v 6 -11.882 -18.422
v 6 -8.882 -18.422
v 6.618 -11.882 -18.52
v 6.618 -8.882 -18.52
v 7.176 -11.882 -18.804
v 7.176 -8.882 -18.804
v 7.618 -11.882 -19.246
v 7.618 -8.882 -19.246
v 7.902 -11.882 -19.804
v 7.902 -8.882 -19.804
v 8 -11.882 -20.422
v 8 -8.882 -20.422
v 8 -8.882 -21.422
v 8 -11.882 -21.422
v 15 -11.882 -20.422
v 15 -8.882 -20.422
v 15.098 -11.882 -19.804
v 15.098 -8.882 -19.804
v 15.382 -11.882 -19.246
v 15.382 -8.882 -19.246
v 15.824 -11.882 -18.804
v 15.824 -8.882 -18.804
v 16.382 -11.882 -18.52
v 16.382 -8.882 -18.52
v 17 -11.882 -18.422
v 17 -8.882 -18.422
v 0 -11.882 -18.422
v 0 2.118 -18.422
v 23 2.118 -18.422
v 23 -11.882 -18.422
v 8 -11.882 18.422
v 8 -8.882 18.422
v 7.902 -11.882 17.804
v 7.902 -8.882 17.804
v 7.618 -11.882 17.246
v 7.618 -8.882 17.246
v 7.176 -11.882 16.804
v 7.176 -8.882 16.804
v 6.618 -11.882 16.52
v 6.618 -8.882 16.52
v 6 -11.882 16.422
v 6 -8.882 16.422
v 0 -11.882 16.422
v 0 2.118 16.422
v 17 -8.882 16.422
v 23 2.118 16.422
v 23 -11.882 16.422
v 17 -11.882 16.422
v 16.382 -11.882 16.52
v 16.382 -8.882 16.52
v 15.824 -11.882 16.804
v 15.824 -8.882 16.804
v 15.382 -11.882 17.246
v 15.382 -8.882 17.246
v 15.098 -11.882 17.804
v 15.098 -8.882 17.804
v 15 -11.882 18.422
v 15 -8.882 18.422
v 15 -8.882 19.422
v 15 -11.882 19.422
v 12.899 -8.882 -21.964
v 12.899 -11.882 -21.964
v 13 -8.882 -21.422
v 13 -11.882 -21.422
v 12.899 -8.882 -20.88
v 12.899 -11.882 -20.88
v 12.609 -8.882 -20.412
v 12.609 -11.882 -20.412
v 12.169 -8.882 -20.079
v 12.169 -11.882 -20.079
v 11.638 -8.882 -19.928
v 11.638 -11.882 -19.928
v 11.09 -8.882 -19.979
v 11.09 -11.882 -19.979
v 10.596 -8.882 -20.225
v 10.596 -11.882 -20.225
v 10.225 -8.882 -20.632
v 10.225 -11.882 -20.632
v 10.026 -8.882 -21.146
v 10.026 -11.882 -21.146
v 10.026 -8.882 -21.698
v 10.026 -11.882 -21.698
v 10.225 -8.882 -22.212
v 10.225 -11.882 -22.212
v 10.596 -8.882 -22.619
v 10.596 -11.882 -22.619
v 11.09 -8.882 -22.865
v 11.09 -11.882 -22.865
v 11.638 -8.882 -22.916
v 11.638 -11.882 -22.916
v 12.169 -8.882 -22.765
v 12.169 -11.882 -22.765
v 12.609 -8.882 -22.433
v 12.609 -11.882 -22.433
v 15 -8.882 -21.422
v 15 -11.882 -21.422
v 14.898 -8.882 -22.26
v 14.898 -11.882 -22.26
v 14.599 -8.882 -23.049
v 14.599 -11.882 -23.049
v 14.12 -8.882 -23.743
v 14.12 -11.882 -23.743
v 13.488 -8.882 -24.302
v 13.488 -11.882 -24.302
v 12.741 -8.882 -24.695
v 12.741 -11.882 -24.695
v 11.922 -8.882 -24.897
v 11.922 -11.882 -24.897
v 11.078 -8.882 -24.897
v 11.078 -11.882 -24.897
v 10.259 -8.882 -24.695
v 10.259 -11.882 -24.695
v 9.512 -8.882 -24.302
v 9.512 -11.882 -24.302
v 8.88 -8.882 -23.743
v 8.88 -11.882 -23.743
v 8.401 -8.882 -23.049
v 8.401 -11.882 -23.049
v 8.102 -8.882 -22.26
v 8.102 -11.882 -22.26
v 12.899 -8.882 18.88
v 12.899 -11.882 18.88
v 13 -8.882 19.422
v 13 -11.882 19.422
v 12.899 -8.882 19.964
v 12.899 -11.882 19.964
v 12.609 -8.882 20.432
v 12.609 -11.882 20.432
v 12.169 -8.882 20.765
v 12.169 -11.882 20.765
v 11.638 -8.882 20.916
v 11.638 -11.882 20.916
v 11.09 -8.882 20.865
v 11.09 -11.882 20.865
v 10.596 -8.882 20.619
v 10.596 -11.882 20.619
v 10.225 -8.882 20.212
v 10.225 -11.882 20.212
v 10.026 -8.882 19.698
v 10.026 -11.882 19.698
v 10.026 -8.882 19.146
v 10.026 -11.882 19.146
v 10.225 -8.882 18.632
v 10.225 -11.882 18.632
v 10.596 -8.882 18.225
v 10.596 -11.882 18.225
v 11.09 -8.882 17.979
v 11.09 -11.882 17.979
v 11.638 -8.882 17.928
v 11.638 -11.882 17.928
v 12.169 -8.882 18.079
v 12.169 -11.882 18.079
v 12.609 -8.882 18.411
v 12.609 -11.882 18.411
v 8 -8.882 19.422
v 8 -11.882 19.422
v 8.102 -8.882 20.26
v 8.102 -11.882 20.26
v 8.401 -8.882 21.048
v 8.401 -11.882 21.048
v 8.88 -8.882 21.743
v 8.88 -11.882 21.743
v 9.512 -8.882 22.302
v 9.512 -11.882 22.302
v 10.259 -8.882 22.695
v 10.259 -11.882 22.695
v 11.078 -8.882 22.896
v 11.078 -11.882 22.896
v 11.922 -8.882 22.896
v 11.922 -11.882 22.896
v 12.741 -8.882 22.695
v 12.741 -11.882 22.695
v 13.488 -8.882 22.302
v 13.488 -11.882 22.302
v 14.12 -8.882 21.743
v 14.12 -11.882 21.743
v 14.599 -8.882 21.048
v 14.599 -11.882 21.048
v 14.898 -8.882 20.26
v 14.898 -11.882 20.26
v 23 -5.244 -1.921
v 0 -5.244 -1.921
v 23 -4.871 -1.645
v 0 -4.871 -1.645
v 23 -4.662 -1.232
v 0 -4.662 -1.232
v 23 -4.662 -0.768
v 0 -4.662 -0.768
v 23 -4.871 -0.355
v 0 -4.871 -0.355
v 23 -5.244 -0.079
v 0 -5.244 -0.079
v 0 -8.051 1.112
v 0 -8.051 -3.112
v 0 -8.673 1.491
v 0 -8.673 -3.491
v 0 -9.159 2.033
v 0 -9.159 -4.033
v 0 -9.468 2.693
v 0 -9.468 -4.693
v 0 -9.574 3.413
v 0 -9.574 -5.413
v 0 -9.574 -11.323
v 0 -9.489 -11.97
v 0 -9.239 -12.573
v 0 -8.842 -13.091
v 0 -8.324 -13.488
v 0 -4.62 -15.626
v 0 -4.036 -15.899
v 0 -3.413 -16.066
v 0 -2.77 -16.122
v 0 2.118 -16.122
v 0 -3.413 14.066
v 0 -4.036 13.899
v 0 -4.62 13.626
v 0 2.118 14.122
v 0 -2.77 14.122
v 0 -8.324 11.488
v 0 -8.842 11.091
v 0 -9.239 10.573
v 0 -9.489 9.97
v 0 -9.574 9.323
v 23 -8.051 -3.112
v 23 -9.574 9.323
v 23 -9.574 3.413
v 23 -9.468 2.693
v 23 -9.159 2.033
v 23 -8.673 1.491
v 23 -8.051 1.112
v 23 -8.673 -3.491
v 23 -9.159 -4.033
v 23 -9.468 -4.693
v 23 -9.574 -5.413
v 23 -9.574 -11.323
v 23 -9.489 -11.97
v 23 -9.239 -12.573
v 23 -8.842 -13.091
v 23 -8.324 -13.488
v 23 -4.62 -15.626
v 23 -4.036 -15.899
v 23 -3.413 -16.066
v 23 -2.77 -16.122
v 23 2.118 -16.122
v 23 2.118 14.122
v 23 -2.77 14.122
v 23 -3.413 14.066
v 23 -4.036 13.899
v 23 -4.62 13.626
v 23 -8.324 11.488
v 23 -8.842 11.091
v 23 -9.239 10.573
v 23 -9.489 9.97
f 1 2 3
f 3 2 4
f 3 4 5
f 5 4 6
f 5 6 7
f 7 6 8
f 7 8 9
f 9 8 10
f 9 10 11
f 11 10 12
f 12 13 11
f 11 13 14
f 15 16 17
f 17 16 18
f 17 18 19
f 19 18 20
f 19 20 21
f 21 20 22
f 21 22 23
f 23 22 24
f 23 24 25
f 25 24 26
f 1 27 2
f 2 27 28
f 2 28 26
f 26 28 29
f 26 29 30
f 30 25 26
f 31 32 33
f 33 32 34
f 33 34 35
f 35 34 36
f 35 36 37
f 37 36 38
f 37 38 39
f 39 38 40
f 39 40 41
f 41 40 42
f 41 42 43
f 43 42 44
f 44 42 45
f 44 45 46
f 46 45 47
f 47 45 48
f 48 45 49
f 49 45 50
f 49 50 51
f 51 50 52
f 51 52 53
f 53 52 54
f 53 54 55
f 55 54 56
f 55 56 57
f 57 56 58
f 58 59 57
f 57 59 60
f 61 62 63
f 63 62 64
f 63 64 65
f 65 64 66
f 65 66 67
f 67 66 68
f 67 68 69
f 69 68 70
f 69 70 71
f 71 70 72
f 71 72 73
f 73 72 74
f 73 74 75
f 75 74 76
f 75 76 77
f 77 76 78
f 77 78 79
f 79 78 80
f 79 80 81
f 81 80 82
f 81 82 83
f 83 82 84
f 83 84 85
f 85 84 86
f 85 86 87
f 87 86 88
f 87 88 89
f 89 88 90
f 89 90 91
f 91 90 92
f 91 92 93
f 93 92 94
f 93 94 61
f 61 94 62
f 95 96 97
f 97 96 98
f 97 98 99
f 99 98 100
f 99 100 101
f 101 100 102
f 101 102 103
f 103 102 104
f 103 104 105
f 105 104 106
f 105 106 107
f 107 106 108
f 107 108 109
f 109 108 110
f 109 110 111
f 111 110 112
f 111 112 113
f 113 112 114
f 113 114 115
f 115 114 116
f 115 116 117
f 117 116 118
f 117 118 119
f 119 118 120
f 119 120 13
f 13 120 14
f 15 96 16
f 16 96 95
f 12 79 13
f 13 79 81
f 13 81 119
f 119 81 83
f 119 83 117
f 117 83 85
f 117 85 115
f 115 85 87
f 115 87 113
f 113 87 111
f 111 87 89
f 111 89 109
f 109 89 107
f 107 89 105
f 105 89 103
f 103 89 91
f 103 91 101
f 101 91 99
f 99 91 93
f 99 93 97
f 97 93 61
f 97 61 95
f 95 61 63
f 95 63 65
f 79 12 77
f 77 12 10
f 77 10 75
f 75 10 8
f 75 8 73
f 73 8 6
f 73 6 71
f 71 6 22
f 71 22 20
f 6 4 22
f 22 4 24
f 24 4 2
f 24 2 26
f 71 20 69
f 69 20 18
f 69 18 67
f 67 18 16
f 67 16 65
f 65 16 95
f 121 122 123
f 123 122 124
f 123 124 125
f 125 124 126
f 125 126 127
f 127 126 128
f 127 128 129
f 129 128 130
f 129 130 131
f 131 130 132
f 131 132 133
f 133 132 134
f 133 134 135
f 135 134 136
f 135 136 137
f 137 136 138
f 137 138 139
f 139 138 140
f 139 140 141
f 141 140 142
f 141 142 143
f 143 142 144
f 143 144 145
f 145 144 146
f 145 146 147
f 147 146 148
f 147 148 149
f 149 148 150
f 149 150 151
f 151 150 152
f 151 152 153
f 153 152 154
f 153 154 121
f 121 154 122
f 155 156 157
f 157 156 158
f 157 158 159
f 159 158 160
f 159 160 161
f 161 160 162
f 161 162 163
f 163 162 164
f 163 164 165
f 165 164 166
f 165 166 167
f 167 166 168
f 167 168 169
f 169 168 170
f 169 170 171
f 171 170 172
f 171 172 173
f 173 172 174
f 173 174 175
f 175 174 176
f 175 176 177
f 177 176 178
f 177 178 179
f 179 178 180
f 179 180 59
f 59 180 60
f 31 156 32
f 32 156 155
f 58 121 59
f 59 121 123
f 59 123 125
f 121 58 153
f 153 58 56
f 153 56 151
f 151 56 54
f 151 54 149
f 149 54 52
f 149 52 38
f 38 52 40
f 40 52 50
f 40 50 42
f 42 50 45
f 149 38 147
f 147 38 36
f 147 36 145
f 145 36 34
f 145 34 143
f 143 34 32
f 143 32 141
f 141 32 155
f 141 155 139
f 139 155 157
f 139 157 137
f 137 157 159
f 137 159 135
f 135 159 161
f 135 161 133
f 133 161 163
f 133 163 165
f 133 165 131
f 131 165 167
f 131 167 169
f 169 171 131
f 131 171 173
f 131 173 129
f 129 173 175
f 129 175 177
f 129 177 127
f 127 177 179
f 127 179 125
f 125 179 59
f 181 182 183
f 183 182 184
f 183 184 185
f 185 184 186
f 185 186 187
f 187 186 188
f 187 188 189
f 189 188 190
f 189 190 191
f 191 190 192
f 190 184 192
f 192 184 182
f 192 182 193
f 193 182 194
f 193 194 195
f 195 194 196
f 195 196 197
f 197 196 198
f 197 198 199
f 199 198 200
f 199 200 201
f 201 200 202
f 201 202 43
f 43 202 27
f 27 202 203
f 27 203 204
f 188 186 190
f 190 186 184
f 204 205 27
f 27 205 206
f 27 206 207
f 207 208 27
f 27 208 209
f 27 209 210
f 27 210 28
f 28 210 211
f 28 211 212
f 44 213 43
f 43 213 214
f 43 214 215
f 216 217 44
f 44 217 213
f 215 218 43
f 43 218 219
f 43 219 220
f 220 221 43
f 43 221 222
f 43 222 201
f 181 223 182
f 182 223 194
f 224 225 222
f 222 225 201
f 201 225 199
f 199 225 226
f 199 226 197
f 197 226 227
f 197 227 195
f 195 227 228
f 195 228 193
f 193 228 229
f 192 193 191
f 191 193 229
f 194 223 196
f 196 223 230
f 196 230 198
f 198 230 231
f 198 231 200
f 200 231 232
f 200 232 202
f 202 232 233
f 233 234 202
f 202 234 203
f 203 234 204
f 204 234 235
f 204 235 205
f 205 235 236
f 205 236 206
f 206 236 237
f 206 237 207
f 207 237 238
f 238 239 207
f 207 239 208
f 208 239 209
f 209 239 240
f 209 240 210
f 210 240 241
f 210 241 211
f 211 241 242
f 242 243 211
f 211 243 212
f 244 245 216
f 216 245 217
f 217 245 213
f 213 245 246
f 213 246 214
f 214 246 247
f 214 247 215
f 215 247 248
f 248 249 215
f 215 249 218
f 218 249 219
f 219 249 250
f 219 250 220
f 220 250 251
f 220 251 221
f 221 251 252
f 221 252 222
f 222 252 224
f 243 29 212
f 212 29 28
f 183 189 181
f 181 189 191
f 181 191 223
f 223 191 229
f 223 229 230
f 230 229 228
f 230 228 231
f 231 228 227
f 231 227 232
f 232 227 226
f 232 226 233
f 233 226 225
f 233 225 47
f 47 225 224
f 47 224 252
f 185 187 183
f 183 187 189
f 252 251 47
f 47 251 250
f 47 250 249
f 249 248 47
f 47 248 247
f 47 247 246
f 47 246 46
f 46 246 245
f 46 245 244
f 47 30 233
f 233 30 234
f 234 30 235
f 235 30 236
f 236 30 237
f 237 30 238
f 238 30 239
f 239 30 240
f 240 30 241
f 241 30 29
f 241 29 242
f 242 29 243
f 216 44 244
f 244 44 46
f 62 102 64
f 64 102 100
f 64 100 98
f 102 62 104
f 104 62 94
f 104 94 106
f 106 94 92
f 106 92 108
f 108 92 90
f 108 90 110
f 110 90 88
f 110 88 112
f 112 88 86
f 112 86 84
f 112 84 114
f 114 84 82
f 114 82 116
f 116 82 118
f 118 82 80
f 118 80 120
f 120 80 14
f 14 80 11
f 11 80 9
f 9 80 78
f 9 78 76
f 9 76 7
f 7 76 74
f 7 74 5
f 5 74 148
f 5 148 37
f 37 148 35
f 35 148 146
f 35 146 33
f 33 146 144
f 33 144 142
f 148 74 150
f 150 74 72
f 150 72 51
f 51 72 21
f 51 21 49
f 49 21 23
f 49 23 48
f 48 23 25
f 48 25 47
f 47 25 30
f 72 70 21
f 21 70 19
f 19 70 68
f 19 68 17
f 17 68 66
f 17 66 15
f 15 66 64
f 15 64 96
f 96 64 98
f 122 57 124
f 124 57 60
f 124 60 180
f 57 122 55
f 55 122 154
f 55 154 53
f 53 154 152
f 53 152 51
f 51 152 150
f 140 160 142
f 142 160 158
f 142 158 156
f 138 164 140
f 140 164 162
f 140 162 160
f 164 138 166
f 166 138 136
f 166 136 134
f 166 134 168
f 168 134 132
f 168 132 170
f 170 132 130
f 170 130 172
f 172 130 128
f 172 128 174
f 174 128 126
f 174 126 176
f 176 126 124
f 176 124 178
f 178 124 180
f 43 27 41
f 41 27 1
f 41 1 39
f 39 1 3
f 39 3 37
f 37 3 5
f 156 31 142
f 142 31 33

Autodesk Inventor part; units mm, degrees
ref_plane "YZ Plane" through (0, 0, 0) normal (1, 0, 0) x (0, 1, 0)
ref_plane "XZ Plane" through (0, 0, 0) normal (0, 1, 0) x (-1, 0, 0)
ref_plane "XY Plane" through (0, 0, 0) normal (0, 0, 1) x (1, 0, 0)
sketch "Sketch1" plane through (0, 0, 0) normal (1, 0, 0) x (0, 1, 0)
  arc A0 (-7.974, 10.8816) -> (-8.874, 9.3228) centre (-7.074, 9.3228) ccw
  line L0 (-8.874, 9.3228) -> (-8.874, 3.4133)
  line L1 (-8.874, 9.3228) -> (-8.874, 3.4133)
  arc A1 (-1.981, -0.7039) -> (0, -1) centre (-0.4181, 2.9781) ccw
  line L2 (-7.7773, 1.7564) -> (-1.981, -0.7039)
  line L3 (2.1178, 13.4219) -> (-2.7701, 13.4219)
  line L4 (-1.981, -0.7039) -> (2.1178, 13.4219)
  line L5 (2.1178, 13.4219) -> (-2.7701, 13.4219)
  arc A2 (-2.7701, 13.4219) -> (-4.2701, 13.02) centre (-2.7701, 10.4219) ccw
  line L6 (-4.2701, 13.02) -> (-12.9304, 8.02)
  line L7 (-4.2701, 13.02) -> (-7.974, 10.8816)
  circle A3 centre (-7.074, 9.3228) radius 1.8
  circle A4 centre (-2.7701, 10.4219) radius 3
  arc A5 (-8.874, 3.4133) -> (-7.7773, 1.7564) centre (-7.074, 3.4133) ccw
  circle A6 centre (-7.074, 3.4133) radius 1.8
  line L8 (0, -1) -> (-3.8233, -1)
  arc A7 (-8.874, -11.3228) -> (-7.974, -12.8816) centre (-7.074, -11.3228) ccw
  line L9 (-8.874, -11.3228) -> (-8.874, -5.4133)
  line L10 (-8.874, -11.3228) -> (-8.874, -5.4133)
  line L11 (-7.7773, -3.7564) -> (-1.981, -1.2961)
  line L12 (2.1178, -15.4219) -> (-2.7701, -15.4219)
  line L13 (-1.981, -1.2961) -> (2.1178, -15.4219)
  line L14 (2.1178, -15.4219) -> (-2.7701, -15.4219)
  arc A8 (-4.2701, -15.02) -> (-2.7701, -15.4219) centre (-2.7701, -12.4219) ccw
  line L15 (-4.2701, -15.02) -> (-12.9304, -10.02)
  line L16 (-4.2701, -15.02) -> (-7.974, -12.8816)
  circle A9 centre (-7.074, -11.3228) radius 1.8
  circle A10 centre (-2.7701, -12.4219) radius 3
  arc A11 (-7.7773, -3.7564) -> (-8.874, -5.4133) centre (-7.074, -5.4133) ccw
  circle A12 centre (-7.074, -5.4133) radius 1.8
  line L17 (-1.981, -0.7039) -> (-1.981, -1.2961)
  line L18 (2.1178, 13.4219) -> (2.1178, 16.4219)
  line L19 (2.1178, 16.4219) -> (-11.8822, 16.4219)
  line L20 (-11.8822, 16.4219) -> (-11.8822, -18.4221)
  line L21 (-11.8822, -18.4221) -> (2.1178, -18.4221)
  line L22 (2.1178, -18.4221) -> (2.1178, -15.4219)
  point P0 (0, 0)
  point P1 (4.8736, 0.62)
  point P2 (-0.4181, -4.9781)
  point P3 (-4.2701, -15.02)
  point P4 (-7.974, 10.8816)
  dimension "d0" = 10
  dimension "d1" = 3
  dimension "d2" = 14
  dimension "d3" = 34.844
extrude "Extrusion1" add sketch "Sketch1" along normal blind 23 contours L6 L20 L19 L18 L3 A2 | A0 L0 A5 L2 L17 L11 A11 L9 A7 L15 L20 L6 | L15 A8 L12 L22 L21 L20
sketch "Sketch2" plane through (23, 0, 0) normal (1, 0, 0) x (0, 0, -1)
  line L0 (-13.4219, -2.7701) -> (-13.4219, 2.1178) projected
  line L1 (-13.4219, 2.1178) -> (-13.4219, -2.7701)
  line L2 (-13.4219, -2.7701) -> (-14.1219, -2.7701)
  line L3 (-14.1219, -2.7701) -> (-14.1219, 2.1178)
  line L4 (-14.1219, 2.1178) -> (-13.4219, 2.1178)
  line L5 (-10.8816, -7.974) -> (-13.02, -4.2701) projected
  line L6 (-13.02, -4.2701) -> (-10.8816, -7.974)
  line L7 (-10.8816, -7.974) -> (-11.4878, -8.324)
  line L8 (-11.4878, -8.324) -> (-13.6262, -4.6201)
  line L9 (-13.6262, -4.6201) -> (-13.02, -4.2701)
  arc A0 (-10.8816, -7.974) -> (-9.3228, -8.874) centre (-9.3228, -7.074) ccw projected
  arc A1 (-3.4133, -8.874) -> (-1.7564, -7.7773) centre (-3.4133, -7.074) ccw projected
  line L10 (-9.3228, -8.874) -> (-3.4133, -8.874)
  line L11 (-3.4133, -8.874) -> (-3.4133, -9.574)
  line L12 (-3.4133, -9.574) -> (-9.3228, -9.574)
  line L13 (-9.3228, -9.574) -> (-9.3228, -8.874)
  line L14 (0.7039, -1.981) -> (-1.7564, -7.7773) projected
  line L15 (-1.7564, -7.7773) -> (0.7039, -1.981)
  line L16 (0.7039, -1.981) -> (1.3483, -2.2546)
  line L17 (1.3483, -2.2546) -> (-1.1121, -8.0508)
  line L18 (-1.1121, -8.0508) -> (-1.7564, -7.7773)
  line L19 (1.2961, -1.981) -> (0.7039, -1.981) projected
  line L20 (1, -1.981) -> (1, -3.9334)
  arc A2 (-13.4219, -2.7701) -> (-13.02, -4.2701) centre (-10.4219, -2.7701) ccw projected
  circle A3 centre (-10.4219, -2.7701) radius 3.7
  circle A4 centre (-9.3228, -7.074) radius 2.5
  circle A5 centre (-3.4133, -7.074) radius 2.5
  line L21 (15.4219, -2.7701) -> (15.4219, 2.1178)
  line L22 (15.4219, 2.1178) -> (15.4219, -2.7701)
  line L23 (15.4219, -2.7701) -> (16.1219, -2.7701)
  line L24 (16.1219, -2.7701) -> (16.1219, 2.1178)
  line L25 (16.1219, 2.1178) -> (15.4219, 2.1178)
  line L26 (12.8816, -7.974) -> (15.02, -4.2701)
  line L27 (15.02, -4.2701) -> (12.8816, -7.974)
  line L28 (12.8816, -7.974) -> (13.4878, -8.324)
  line L29 (13.4878, -8.324) -> (15.6262, -4.6201)
  line L30 (15.6262, -4.6201) -> (15.02, -4.2701)
  arc A6 (11.3228, -8.874) -> (12.8816, -7.974) centre (11.3228, -7.074) ccw
  arc A7 (3.7564, -7.7773) -> (5.4133, -8.874) centre (5.4133, -7.074) ccw
  line L31 (11.3228, -8.874) -> (5.4133, -8.874)
  line L32 (5.4133, -8.874) -> (5.4133, -9.574)
  line L33 (5.4133, -9.574) -> (11.3228, -9.574)
  line L34 (11.3228, -9.574) -> (11.3228, -8.874)
  line L35 (1.2961, -1.981) -> (3.7564, -7.7773)
  line L36 (3.7564, -7.7773) -> (1.2961, -1.981)
  line L37 (0.6517, -2.2546) -> (3.1121, -8.0508)
  line L38 (3.1121, -8.0508) -> (3.7564, -7.7773)
  arc A8 (15.02, -4.2701) -> (15.4219, -2.7701) centre (12.4219, -2.7701) ccw
  circle A9 centre (12.4219, -2.7701) radius 3.7
  circle A10 centre (11.3228, -7.074) radius 2.5
  circle A11 centre (5.4133, -7.074) radius 2.5
  point P0 (0, 0)
  point P1 (13.7491, -6.4715)
  point P2 (13.6826, -6.2487)
  point P3 (13.9372, -6.1456)
  point P4 (-11.9372, -6.1456)
  point P5 (-11.6826, -6.2487)
  point P6 (-11.7491, -6.4715)
  point P7 (-13.6262, -4.6201)
  point P8 (-9.3228, -9.574)
  point P9 (-1.1121, -8.0508)
  point P10 (1, -3.0751)
  point P11 (3.1121, -8.0508)
  point P12 (11.3228, -9.574)
  point P13 (15.6262, -4.6201)
  point P14 (16.1219, -2.7701)
  point P15 (15.4219, -0.6045)
  point P16 (9.6476, -5.2182)
  point P17 (9.5878, -8.874)
  point P18 (7.1483, -8.874)
  point P19 (3.0785, -6.1803)
  point P20 (-1.0785, -6.1803)
  point P21 (-5.1483, -8.874)
  point P22 (-7.5878, -8.874)
  point P23 (-7.6476, -5.2182)
  point P24 (-13.4219, -0.6045)
  point P25 (-14.1219, -2.7701)
  dimension "d6" = 0.7
  dimension "d7" = 0.7
  dimension "d8" = 0.7
  dimension "d9" = 0.7
extrude "Extrusion2" cut sketch "Sketch2" against normal blind 23 contours L2 A3 L0 | A2 L9 A3 L2 | L0 A3 A4 L5 A2 | A3 L3 L4 L0 | L5 A3 L9 | A3 L5 A4 L8 | A4 L10 A0 L5 A3 | A3 A4 | A4 L5 L7 | L7 A0 L13 A4 | A4 L10 A5 L12 | L13 L10 A4 | A5 L10 L11 | L11 A1 L18 A5 | A5 L14 A1 L10 | A5 L14 L16 L20 L17 | L18 L14 A5 | L20 L16 L17 | L17 L16 L20 L19 L35 A11 L37 | L19 L20 L16 | A11 L35 L38 | L38 A7 L32 A11 | L35 A11 L31 A7 | A11 L31 A10 L33 | L32 L31 A11 | A10 L31 L34 | L34 A6 L28 A10 | L31 A10 A9 L26 A6 | A10 L26 A9 L29 | L28 L26 A10 | A9 L26 L30 | L30 A8 L23 A9 | A10 A9 | A9 L21 A8 L26 A10 | A9 L21 L25 L24 | L23 L21 A9
fillet "Fillet1" radius 1 1 edges at (11.5, -3.0751, -1)
sketch "Sketch3" plane through (0, -11.8822, -18.4221) normal (0, -1, 0) x (1, 0, 0)
  line L0 (0, 0) -> (23, 0) projected
  line L1 (11.5, 0) -> (11.5, -3)
  line L2 (0, 34.844) -> (23, 34.844) projected
  line L3 (11.5, 34.844) -> (11.5, 37.844)
  circle A0 centre (11.5, 37.844) radius 1.5
  circle A1 centre (11.5, -3) radius 1.5
  line L4 (11.5, 37.844) -> (11.5, -3) construction
  line L5 (8, 37.844) -> (8, -3)
  line L6 (15, -3) -> (15, 37.844)
  arc A2 (15, 37.844) -> (8, 37.844) centre (11.5, 37.844) ccw
  arc A3 (8, -3) -> (15, -3) centre (11.5, -3) ccw
  point P0 (0, 18.4221)
  point P1 (11.5, 17.422)
  point P2 (8, 0)
  point P3 (15, 0)
  point P4 (15, 34.844)
  point P5 (8, 34.844)
  dimension "d13" = 3
  dimension "d14" = 3
  dimension "d15" = 3
  dimension "d16" = 3
  dimension "d17" = 7
extrude "Extrusion3" add sketch "Sketch3" against normal blind 3 contours L0 L6 A3 L5 | L5 A2 L6 L2
fillet "Fillet2" radius 2 4 edges at (15, -10.3822, 16.4219) (8, -10.3822, 16.4219) (15, -10.3822, -18.4221) (8, -10.3822, -18.4221)
properties part number "wago_support"
